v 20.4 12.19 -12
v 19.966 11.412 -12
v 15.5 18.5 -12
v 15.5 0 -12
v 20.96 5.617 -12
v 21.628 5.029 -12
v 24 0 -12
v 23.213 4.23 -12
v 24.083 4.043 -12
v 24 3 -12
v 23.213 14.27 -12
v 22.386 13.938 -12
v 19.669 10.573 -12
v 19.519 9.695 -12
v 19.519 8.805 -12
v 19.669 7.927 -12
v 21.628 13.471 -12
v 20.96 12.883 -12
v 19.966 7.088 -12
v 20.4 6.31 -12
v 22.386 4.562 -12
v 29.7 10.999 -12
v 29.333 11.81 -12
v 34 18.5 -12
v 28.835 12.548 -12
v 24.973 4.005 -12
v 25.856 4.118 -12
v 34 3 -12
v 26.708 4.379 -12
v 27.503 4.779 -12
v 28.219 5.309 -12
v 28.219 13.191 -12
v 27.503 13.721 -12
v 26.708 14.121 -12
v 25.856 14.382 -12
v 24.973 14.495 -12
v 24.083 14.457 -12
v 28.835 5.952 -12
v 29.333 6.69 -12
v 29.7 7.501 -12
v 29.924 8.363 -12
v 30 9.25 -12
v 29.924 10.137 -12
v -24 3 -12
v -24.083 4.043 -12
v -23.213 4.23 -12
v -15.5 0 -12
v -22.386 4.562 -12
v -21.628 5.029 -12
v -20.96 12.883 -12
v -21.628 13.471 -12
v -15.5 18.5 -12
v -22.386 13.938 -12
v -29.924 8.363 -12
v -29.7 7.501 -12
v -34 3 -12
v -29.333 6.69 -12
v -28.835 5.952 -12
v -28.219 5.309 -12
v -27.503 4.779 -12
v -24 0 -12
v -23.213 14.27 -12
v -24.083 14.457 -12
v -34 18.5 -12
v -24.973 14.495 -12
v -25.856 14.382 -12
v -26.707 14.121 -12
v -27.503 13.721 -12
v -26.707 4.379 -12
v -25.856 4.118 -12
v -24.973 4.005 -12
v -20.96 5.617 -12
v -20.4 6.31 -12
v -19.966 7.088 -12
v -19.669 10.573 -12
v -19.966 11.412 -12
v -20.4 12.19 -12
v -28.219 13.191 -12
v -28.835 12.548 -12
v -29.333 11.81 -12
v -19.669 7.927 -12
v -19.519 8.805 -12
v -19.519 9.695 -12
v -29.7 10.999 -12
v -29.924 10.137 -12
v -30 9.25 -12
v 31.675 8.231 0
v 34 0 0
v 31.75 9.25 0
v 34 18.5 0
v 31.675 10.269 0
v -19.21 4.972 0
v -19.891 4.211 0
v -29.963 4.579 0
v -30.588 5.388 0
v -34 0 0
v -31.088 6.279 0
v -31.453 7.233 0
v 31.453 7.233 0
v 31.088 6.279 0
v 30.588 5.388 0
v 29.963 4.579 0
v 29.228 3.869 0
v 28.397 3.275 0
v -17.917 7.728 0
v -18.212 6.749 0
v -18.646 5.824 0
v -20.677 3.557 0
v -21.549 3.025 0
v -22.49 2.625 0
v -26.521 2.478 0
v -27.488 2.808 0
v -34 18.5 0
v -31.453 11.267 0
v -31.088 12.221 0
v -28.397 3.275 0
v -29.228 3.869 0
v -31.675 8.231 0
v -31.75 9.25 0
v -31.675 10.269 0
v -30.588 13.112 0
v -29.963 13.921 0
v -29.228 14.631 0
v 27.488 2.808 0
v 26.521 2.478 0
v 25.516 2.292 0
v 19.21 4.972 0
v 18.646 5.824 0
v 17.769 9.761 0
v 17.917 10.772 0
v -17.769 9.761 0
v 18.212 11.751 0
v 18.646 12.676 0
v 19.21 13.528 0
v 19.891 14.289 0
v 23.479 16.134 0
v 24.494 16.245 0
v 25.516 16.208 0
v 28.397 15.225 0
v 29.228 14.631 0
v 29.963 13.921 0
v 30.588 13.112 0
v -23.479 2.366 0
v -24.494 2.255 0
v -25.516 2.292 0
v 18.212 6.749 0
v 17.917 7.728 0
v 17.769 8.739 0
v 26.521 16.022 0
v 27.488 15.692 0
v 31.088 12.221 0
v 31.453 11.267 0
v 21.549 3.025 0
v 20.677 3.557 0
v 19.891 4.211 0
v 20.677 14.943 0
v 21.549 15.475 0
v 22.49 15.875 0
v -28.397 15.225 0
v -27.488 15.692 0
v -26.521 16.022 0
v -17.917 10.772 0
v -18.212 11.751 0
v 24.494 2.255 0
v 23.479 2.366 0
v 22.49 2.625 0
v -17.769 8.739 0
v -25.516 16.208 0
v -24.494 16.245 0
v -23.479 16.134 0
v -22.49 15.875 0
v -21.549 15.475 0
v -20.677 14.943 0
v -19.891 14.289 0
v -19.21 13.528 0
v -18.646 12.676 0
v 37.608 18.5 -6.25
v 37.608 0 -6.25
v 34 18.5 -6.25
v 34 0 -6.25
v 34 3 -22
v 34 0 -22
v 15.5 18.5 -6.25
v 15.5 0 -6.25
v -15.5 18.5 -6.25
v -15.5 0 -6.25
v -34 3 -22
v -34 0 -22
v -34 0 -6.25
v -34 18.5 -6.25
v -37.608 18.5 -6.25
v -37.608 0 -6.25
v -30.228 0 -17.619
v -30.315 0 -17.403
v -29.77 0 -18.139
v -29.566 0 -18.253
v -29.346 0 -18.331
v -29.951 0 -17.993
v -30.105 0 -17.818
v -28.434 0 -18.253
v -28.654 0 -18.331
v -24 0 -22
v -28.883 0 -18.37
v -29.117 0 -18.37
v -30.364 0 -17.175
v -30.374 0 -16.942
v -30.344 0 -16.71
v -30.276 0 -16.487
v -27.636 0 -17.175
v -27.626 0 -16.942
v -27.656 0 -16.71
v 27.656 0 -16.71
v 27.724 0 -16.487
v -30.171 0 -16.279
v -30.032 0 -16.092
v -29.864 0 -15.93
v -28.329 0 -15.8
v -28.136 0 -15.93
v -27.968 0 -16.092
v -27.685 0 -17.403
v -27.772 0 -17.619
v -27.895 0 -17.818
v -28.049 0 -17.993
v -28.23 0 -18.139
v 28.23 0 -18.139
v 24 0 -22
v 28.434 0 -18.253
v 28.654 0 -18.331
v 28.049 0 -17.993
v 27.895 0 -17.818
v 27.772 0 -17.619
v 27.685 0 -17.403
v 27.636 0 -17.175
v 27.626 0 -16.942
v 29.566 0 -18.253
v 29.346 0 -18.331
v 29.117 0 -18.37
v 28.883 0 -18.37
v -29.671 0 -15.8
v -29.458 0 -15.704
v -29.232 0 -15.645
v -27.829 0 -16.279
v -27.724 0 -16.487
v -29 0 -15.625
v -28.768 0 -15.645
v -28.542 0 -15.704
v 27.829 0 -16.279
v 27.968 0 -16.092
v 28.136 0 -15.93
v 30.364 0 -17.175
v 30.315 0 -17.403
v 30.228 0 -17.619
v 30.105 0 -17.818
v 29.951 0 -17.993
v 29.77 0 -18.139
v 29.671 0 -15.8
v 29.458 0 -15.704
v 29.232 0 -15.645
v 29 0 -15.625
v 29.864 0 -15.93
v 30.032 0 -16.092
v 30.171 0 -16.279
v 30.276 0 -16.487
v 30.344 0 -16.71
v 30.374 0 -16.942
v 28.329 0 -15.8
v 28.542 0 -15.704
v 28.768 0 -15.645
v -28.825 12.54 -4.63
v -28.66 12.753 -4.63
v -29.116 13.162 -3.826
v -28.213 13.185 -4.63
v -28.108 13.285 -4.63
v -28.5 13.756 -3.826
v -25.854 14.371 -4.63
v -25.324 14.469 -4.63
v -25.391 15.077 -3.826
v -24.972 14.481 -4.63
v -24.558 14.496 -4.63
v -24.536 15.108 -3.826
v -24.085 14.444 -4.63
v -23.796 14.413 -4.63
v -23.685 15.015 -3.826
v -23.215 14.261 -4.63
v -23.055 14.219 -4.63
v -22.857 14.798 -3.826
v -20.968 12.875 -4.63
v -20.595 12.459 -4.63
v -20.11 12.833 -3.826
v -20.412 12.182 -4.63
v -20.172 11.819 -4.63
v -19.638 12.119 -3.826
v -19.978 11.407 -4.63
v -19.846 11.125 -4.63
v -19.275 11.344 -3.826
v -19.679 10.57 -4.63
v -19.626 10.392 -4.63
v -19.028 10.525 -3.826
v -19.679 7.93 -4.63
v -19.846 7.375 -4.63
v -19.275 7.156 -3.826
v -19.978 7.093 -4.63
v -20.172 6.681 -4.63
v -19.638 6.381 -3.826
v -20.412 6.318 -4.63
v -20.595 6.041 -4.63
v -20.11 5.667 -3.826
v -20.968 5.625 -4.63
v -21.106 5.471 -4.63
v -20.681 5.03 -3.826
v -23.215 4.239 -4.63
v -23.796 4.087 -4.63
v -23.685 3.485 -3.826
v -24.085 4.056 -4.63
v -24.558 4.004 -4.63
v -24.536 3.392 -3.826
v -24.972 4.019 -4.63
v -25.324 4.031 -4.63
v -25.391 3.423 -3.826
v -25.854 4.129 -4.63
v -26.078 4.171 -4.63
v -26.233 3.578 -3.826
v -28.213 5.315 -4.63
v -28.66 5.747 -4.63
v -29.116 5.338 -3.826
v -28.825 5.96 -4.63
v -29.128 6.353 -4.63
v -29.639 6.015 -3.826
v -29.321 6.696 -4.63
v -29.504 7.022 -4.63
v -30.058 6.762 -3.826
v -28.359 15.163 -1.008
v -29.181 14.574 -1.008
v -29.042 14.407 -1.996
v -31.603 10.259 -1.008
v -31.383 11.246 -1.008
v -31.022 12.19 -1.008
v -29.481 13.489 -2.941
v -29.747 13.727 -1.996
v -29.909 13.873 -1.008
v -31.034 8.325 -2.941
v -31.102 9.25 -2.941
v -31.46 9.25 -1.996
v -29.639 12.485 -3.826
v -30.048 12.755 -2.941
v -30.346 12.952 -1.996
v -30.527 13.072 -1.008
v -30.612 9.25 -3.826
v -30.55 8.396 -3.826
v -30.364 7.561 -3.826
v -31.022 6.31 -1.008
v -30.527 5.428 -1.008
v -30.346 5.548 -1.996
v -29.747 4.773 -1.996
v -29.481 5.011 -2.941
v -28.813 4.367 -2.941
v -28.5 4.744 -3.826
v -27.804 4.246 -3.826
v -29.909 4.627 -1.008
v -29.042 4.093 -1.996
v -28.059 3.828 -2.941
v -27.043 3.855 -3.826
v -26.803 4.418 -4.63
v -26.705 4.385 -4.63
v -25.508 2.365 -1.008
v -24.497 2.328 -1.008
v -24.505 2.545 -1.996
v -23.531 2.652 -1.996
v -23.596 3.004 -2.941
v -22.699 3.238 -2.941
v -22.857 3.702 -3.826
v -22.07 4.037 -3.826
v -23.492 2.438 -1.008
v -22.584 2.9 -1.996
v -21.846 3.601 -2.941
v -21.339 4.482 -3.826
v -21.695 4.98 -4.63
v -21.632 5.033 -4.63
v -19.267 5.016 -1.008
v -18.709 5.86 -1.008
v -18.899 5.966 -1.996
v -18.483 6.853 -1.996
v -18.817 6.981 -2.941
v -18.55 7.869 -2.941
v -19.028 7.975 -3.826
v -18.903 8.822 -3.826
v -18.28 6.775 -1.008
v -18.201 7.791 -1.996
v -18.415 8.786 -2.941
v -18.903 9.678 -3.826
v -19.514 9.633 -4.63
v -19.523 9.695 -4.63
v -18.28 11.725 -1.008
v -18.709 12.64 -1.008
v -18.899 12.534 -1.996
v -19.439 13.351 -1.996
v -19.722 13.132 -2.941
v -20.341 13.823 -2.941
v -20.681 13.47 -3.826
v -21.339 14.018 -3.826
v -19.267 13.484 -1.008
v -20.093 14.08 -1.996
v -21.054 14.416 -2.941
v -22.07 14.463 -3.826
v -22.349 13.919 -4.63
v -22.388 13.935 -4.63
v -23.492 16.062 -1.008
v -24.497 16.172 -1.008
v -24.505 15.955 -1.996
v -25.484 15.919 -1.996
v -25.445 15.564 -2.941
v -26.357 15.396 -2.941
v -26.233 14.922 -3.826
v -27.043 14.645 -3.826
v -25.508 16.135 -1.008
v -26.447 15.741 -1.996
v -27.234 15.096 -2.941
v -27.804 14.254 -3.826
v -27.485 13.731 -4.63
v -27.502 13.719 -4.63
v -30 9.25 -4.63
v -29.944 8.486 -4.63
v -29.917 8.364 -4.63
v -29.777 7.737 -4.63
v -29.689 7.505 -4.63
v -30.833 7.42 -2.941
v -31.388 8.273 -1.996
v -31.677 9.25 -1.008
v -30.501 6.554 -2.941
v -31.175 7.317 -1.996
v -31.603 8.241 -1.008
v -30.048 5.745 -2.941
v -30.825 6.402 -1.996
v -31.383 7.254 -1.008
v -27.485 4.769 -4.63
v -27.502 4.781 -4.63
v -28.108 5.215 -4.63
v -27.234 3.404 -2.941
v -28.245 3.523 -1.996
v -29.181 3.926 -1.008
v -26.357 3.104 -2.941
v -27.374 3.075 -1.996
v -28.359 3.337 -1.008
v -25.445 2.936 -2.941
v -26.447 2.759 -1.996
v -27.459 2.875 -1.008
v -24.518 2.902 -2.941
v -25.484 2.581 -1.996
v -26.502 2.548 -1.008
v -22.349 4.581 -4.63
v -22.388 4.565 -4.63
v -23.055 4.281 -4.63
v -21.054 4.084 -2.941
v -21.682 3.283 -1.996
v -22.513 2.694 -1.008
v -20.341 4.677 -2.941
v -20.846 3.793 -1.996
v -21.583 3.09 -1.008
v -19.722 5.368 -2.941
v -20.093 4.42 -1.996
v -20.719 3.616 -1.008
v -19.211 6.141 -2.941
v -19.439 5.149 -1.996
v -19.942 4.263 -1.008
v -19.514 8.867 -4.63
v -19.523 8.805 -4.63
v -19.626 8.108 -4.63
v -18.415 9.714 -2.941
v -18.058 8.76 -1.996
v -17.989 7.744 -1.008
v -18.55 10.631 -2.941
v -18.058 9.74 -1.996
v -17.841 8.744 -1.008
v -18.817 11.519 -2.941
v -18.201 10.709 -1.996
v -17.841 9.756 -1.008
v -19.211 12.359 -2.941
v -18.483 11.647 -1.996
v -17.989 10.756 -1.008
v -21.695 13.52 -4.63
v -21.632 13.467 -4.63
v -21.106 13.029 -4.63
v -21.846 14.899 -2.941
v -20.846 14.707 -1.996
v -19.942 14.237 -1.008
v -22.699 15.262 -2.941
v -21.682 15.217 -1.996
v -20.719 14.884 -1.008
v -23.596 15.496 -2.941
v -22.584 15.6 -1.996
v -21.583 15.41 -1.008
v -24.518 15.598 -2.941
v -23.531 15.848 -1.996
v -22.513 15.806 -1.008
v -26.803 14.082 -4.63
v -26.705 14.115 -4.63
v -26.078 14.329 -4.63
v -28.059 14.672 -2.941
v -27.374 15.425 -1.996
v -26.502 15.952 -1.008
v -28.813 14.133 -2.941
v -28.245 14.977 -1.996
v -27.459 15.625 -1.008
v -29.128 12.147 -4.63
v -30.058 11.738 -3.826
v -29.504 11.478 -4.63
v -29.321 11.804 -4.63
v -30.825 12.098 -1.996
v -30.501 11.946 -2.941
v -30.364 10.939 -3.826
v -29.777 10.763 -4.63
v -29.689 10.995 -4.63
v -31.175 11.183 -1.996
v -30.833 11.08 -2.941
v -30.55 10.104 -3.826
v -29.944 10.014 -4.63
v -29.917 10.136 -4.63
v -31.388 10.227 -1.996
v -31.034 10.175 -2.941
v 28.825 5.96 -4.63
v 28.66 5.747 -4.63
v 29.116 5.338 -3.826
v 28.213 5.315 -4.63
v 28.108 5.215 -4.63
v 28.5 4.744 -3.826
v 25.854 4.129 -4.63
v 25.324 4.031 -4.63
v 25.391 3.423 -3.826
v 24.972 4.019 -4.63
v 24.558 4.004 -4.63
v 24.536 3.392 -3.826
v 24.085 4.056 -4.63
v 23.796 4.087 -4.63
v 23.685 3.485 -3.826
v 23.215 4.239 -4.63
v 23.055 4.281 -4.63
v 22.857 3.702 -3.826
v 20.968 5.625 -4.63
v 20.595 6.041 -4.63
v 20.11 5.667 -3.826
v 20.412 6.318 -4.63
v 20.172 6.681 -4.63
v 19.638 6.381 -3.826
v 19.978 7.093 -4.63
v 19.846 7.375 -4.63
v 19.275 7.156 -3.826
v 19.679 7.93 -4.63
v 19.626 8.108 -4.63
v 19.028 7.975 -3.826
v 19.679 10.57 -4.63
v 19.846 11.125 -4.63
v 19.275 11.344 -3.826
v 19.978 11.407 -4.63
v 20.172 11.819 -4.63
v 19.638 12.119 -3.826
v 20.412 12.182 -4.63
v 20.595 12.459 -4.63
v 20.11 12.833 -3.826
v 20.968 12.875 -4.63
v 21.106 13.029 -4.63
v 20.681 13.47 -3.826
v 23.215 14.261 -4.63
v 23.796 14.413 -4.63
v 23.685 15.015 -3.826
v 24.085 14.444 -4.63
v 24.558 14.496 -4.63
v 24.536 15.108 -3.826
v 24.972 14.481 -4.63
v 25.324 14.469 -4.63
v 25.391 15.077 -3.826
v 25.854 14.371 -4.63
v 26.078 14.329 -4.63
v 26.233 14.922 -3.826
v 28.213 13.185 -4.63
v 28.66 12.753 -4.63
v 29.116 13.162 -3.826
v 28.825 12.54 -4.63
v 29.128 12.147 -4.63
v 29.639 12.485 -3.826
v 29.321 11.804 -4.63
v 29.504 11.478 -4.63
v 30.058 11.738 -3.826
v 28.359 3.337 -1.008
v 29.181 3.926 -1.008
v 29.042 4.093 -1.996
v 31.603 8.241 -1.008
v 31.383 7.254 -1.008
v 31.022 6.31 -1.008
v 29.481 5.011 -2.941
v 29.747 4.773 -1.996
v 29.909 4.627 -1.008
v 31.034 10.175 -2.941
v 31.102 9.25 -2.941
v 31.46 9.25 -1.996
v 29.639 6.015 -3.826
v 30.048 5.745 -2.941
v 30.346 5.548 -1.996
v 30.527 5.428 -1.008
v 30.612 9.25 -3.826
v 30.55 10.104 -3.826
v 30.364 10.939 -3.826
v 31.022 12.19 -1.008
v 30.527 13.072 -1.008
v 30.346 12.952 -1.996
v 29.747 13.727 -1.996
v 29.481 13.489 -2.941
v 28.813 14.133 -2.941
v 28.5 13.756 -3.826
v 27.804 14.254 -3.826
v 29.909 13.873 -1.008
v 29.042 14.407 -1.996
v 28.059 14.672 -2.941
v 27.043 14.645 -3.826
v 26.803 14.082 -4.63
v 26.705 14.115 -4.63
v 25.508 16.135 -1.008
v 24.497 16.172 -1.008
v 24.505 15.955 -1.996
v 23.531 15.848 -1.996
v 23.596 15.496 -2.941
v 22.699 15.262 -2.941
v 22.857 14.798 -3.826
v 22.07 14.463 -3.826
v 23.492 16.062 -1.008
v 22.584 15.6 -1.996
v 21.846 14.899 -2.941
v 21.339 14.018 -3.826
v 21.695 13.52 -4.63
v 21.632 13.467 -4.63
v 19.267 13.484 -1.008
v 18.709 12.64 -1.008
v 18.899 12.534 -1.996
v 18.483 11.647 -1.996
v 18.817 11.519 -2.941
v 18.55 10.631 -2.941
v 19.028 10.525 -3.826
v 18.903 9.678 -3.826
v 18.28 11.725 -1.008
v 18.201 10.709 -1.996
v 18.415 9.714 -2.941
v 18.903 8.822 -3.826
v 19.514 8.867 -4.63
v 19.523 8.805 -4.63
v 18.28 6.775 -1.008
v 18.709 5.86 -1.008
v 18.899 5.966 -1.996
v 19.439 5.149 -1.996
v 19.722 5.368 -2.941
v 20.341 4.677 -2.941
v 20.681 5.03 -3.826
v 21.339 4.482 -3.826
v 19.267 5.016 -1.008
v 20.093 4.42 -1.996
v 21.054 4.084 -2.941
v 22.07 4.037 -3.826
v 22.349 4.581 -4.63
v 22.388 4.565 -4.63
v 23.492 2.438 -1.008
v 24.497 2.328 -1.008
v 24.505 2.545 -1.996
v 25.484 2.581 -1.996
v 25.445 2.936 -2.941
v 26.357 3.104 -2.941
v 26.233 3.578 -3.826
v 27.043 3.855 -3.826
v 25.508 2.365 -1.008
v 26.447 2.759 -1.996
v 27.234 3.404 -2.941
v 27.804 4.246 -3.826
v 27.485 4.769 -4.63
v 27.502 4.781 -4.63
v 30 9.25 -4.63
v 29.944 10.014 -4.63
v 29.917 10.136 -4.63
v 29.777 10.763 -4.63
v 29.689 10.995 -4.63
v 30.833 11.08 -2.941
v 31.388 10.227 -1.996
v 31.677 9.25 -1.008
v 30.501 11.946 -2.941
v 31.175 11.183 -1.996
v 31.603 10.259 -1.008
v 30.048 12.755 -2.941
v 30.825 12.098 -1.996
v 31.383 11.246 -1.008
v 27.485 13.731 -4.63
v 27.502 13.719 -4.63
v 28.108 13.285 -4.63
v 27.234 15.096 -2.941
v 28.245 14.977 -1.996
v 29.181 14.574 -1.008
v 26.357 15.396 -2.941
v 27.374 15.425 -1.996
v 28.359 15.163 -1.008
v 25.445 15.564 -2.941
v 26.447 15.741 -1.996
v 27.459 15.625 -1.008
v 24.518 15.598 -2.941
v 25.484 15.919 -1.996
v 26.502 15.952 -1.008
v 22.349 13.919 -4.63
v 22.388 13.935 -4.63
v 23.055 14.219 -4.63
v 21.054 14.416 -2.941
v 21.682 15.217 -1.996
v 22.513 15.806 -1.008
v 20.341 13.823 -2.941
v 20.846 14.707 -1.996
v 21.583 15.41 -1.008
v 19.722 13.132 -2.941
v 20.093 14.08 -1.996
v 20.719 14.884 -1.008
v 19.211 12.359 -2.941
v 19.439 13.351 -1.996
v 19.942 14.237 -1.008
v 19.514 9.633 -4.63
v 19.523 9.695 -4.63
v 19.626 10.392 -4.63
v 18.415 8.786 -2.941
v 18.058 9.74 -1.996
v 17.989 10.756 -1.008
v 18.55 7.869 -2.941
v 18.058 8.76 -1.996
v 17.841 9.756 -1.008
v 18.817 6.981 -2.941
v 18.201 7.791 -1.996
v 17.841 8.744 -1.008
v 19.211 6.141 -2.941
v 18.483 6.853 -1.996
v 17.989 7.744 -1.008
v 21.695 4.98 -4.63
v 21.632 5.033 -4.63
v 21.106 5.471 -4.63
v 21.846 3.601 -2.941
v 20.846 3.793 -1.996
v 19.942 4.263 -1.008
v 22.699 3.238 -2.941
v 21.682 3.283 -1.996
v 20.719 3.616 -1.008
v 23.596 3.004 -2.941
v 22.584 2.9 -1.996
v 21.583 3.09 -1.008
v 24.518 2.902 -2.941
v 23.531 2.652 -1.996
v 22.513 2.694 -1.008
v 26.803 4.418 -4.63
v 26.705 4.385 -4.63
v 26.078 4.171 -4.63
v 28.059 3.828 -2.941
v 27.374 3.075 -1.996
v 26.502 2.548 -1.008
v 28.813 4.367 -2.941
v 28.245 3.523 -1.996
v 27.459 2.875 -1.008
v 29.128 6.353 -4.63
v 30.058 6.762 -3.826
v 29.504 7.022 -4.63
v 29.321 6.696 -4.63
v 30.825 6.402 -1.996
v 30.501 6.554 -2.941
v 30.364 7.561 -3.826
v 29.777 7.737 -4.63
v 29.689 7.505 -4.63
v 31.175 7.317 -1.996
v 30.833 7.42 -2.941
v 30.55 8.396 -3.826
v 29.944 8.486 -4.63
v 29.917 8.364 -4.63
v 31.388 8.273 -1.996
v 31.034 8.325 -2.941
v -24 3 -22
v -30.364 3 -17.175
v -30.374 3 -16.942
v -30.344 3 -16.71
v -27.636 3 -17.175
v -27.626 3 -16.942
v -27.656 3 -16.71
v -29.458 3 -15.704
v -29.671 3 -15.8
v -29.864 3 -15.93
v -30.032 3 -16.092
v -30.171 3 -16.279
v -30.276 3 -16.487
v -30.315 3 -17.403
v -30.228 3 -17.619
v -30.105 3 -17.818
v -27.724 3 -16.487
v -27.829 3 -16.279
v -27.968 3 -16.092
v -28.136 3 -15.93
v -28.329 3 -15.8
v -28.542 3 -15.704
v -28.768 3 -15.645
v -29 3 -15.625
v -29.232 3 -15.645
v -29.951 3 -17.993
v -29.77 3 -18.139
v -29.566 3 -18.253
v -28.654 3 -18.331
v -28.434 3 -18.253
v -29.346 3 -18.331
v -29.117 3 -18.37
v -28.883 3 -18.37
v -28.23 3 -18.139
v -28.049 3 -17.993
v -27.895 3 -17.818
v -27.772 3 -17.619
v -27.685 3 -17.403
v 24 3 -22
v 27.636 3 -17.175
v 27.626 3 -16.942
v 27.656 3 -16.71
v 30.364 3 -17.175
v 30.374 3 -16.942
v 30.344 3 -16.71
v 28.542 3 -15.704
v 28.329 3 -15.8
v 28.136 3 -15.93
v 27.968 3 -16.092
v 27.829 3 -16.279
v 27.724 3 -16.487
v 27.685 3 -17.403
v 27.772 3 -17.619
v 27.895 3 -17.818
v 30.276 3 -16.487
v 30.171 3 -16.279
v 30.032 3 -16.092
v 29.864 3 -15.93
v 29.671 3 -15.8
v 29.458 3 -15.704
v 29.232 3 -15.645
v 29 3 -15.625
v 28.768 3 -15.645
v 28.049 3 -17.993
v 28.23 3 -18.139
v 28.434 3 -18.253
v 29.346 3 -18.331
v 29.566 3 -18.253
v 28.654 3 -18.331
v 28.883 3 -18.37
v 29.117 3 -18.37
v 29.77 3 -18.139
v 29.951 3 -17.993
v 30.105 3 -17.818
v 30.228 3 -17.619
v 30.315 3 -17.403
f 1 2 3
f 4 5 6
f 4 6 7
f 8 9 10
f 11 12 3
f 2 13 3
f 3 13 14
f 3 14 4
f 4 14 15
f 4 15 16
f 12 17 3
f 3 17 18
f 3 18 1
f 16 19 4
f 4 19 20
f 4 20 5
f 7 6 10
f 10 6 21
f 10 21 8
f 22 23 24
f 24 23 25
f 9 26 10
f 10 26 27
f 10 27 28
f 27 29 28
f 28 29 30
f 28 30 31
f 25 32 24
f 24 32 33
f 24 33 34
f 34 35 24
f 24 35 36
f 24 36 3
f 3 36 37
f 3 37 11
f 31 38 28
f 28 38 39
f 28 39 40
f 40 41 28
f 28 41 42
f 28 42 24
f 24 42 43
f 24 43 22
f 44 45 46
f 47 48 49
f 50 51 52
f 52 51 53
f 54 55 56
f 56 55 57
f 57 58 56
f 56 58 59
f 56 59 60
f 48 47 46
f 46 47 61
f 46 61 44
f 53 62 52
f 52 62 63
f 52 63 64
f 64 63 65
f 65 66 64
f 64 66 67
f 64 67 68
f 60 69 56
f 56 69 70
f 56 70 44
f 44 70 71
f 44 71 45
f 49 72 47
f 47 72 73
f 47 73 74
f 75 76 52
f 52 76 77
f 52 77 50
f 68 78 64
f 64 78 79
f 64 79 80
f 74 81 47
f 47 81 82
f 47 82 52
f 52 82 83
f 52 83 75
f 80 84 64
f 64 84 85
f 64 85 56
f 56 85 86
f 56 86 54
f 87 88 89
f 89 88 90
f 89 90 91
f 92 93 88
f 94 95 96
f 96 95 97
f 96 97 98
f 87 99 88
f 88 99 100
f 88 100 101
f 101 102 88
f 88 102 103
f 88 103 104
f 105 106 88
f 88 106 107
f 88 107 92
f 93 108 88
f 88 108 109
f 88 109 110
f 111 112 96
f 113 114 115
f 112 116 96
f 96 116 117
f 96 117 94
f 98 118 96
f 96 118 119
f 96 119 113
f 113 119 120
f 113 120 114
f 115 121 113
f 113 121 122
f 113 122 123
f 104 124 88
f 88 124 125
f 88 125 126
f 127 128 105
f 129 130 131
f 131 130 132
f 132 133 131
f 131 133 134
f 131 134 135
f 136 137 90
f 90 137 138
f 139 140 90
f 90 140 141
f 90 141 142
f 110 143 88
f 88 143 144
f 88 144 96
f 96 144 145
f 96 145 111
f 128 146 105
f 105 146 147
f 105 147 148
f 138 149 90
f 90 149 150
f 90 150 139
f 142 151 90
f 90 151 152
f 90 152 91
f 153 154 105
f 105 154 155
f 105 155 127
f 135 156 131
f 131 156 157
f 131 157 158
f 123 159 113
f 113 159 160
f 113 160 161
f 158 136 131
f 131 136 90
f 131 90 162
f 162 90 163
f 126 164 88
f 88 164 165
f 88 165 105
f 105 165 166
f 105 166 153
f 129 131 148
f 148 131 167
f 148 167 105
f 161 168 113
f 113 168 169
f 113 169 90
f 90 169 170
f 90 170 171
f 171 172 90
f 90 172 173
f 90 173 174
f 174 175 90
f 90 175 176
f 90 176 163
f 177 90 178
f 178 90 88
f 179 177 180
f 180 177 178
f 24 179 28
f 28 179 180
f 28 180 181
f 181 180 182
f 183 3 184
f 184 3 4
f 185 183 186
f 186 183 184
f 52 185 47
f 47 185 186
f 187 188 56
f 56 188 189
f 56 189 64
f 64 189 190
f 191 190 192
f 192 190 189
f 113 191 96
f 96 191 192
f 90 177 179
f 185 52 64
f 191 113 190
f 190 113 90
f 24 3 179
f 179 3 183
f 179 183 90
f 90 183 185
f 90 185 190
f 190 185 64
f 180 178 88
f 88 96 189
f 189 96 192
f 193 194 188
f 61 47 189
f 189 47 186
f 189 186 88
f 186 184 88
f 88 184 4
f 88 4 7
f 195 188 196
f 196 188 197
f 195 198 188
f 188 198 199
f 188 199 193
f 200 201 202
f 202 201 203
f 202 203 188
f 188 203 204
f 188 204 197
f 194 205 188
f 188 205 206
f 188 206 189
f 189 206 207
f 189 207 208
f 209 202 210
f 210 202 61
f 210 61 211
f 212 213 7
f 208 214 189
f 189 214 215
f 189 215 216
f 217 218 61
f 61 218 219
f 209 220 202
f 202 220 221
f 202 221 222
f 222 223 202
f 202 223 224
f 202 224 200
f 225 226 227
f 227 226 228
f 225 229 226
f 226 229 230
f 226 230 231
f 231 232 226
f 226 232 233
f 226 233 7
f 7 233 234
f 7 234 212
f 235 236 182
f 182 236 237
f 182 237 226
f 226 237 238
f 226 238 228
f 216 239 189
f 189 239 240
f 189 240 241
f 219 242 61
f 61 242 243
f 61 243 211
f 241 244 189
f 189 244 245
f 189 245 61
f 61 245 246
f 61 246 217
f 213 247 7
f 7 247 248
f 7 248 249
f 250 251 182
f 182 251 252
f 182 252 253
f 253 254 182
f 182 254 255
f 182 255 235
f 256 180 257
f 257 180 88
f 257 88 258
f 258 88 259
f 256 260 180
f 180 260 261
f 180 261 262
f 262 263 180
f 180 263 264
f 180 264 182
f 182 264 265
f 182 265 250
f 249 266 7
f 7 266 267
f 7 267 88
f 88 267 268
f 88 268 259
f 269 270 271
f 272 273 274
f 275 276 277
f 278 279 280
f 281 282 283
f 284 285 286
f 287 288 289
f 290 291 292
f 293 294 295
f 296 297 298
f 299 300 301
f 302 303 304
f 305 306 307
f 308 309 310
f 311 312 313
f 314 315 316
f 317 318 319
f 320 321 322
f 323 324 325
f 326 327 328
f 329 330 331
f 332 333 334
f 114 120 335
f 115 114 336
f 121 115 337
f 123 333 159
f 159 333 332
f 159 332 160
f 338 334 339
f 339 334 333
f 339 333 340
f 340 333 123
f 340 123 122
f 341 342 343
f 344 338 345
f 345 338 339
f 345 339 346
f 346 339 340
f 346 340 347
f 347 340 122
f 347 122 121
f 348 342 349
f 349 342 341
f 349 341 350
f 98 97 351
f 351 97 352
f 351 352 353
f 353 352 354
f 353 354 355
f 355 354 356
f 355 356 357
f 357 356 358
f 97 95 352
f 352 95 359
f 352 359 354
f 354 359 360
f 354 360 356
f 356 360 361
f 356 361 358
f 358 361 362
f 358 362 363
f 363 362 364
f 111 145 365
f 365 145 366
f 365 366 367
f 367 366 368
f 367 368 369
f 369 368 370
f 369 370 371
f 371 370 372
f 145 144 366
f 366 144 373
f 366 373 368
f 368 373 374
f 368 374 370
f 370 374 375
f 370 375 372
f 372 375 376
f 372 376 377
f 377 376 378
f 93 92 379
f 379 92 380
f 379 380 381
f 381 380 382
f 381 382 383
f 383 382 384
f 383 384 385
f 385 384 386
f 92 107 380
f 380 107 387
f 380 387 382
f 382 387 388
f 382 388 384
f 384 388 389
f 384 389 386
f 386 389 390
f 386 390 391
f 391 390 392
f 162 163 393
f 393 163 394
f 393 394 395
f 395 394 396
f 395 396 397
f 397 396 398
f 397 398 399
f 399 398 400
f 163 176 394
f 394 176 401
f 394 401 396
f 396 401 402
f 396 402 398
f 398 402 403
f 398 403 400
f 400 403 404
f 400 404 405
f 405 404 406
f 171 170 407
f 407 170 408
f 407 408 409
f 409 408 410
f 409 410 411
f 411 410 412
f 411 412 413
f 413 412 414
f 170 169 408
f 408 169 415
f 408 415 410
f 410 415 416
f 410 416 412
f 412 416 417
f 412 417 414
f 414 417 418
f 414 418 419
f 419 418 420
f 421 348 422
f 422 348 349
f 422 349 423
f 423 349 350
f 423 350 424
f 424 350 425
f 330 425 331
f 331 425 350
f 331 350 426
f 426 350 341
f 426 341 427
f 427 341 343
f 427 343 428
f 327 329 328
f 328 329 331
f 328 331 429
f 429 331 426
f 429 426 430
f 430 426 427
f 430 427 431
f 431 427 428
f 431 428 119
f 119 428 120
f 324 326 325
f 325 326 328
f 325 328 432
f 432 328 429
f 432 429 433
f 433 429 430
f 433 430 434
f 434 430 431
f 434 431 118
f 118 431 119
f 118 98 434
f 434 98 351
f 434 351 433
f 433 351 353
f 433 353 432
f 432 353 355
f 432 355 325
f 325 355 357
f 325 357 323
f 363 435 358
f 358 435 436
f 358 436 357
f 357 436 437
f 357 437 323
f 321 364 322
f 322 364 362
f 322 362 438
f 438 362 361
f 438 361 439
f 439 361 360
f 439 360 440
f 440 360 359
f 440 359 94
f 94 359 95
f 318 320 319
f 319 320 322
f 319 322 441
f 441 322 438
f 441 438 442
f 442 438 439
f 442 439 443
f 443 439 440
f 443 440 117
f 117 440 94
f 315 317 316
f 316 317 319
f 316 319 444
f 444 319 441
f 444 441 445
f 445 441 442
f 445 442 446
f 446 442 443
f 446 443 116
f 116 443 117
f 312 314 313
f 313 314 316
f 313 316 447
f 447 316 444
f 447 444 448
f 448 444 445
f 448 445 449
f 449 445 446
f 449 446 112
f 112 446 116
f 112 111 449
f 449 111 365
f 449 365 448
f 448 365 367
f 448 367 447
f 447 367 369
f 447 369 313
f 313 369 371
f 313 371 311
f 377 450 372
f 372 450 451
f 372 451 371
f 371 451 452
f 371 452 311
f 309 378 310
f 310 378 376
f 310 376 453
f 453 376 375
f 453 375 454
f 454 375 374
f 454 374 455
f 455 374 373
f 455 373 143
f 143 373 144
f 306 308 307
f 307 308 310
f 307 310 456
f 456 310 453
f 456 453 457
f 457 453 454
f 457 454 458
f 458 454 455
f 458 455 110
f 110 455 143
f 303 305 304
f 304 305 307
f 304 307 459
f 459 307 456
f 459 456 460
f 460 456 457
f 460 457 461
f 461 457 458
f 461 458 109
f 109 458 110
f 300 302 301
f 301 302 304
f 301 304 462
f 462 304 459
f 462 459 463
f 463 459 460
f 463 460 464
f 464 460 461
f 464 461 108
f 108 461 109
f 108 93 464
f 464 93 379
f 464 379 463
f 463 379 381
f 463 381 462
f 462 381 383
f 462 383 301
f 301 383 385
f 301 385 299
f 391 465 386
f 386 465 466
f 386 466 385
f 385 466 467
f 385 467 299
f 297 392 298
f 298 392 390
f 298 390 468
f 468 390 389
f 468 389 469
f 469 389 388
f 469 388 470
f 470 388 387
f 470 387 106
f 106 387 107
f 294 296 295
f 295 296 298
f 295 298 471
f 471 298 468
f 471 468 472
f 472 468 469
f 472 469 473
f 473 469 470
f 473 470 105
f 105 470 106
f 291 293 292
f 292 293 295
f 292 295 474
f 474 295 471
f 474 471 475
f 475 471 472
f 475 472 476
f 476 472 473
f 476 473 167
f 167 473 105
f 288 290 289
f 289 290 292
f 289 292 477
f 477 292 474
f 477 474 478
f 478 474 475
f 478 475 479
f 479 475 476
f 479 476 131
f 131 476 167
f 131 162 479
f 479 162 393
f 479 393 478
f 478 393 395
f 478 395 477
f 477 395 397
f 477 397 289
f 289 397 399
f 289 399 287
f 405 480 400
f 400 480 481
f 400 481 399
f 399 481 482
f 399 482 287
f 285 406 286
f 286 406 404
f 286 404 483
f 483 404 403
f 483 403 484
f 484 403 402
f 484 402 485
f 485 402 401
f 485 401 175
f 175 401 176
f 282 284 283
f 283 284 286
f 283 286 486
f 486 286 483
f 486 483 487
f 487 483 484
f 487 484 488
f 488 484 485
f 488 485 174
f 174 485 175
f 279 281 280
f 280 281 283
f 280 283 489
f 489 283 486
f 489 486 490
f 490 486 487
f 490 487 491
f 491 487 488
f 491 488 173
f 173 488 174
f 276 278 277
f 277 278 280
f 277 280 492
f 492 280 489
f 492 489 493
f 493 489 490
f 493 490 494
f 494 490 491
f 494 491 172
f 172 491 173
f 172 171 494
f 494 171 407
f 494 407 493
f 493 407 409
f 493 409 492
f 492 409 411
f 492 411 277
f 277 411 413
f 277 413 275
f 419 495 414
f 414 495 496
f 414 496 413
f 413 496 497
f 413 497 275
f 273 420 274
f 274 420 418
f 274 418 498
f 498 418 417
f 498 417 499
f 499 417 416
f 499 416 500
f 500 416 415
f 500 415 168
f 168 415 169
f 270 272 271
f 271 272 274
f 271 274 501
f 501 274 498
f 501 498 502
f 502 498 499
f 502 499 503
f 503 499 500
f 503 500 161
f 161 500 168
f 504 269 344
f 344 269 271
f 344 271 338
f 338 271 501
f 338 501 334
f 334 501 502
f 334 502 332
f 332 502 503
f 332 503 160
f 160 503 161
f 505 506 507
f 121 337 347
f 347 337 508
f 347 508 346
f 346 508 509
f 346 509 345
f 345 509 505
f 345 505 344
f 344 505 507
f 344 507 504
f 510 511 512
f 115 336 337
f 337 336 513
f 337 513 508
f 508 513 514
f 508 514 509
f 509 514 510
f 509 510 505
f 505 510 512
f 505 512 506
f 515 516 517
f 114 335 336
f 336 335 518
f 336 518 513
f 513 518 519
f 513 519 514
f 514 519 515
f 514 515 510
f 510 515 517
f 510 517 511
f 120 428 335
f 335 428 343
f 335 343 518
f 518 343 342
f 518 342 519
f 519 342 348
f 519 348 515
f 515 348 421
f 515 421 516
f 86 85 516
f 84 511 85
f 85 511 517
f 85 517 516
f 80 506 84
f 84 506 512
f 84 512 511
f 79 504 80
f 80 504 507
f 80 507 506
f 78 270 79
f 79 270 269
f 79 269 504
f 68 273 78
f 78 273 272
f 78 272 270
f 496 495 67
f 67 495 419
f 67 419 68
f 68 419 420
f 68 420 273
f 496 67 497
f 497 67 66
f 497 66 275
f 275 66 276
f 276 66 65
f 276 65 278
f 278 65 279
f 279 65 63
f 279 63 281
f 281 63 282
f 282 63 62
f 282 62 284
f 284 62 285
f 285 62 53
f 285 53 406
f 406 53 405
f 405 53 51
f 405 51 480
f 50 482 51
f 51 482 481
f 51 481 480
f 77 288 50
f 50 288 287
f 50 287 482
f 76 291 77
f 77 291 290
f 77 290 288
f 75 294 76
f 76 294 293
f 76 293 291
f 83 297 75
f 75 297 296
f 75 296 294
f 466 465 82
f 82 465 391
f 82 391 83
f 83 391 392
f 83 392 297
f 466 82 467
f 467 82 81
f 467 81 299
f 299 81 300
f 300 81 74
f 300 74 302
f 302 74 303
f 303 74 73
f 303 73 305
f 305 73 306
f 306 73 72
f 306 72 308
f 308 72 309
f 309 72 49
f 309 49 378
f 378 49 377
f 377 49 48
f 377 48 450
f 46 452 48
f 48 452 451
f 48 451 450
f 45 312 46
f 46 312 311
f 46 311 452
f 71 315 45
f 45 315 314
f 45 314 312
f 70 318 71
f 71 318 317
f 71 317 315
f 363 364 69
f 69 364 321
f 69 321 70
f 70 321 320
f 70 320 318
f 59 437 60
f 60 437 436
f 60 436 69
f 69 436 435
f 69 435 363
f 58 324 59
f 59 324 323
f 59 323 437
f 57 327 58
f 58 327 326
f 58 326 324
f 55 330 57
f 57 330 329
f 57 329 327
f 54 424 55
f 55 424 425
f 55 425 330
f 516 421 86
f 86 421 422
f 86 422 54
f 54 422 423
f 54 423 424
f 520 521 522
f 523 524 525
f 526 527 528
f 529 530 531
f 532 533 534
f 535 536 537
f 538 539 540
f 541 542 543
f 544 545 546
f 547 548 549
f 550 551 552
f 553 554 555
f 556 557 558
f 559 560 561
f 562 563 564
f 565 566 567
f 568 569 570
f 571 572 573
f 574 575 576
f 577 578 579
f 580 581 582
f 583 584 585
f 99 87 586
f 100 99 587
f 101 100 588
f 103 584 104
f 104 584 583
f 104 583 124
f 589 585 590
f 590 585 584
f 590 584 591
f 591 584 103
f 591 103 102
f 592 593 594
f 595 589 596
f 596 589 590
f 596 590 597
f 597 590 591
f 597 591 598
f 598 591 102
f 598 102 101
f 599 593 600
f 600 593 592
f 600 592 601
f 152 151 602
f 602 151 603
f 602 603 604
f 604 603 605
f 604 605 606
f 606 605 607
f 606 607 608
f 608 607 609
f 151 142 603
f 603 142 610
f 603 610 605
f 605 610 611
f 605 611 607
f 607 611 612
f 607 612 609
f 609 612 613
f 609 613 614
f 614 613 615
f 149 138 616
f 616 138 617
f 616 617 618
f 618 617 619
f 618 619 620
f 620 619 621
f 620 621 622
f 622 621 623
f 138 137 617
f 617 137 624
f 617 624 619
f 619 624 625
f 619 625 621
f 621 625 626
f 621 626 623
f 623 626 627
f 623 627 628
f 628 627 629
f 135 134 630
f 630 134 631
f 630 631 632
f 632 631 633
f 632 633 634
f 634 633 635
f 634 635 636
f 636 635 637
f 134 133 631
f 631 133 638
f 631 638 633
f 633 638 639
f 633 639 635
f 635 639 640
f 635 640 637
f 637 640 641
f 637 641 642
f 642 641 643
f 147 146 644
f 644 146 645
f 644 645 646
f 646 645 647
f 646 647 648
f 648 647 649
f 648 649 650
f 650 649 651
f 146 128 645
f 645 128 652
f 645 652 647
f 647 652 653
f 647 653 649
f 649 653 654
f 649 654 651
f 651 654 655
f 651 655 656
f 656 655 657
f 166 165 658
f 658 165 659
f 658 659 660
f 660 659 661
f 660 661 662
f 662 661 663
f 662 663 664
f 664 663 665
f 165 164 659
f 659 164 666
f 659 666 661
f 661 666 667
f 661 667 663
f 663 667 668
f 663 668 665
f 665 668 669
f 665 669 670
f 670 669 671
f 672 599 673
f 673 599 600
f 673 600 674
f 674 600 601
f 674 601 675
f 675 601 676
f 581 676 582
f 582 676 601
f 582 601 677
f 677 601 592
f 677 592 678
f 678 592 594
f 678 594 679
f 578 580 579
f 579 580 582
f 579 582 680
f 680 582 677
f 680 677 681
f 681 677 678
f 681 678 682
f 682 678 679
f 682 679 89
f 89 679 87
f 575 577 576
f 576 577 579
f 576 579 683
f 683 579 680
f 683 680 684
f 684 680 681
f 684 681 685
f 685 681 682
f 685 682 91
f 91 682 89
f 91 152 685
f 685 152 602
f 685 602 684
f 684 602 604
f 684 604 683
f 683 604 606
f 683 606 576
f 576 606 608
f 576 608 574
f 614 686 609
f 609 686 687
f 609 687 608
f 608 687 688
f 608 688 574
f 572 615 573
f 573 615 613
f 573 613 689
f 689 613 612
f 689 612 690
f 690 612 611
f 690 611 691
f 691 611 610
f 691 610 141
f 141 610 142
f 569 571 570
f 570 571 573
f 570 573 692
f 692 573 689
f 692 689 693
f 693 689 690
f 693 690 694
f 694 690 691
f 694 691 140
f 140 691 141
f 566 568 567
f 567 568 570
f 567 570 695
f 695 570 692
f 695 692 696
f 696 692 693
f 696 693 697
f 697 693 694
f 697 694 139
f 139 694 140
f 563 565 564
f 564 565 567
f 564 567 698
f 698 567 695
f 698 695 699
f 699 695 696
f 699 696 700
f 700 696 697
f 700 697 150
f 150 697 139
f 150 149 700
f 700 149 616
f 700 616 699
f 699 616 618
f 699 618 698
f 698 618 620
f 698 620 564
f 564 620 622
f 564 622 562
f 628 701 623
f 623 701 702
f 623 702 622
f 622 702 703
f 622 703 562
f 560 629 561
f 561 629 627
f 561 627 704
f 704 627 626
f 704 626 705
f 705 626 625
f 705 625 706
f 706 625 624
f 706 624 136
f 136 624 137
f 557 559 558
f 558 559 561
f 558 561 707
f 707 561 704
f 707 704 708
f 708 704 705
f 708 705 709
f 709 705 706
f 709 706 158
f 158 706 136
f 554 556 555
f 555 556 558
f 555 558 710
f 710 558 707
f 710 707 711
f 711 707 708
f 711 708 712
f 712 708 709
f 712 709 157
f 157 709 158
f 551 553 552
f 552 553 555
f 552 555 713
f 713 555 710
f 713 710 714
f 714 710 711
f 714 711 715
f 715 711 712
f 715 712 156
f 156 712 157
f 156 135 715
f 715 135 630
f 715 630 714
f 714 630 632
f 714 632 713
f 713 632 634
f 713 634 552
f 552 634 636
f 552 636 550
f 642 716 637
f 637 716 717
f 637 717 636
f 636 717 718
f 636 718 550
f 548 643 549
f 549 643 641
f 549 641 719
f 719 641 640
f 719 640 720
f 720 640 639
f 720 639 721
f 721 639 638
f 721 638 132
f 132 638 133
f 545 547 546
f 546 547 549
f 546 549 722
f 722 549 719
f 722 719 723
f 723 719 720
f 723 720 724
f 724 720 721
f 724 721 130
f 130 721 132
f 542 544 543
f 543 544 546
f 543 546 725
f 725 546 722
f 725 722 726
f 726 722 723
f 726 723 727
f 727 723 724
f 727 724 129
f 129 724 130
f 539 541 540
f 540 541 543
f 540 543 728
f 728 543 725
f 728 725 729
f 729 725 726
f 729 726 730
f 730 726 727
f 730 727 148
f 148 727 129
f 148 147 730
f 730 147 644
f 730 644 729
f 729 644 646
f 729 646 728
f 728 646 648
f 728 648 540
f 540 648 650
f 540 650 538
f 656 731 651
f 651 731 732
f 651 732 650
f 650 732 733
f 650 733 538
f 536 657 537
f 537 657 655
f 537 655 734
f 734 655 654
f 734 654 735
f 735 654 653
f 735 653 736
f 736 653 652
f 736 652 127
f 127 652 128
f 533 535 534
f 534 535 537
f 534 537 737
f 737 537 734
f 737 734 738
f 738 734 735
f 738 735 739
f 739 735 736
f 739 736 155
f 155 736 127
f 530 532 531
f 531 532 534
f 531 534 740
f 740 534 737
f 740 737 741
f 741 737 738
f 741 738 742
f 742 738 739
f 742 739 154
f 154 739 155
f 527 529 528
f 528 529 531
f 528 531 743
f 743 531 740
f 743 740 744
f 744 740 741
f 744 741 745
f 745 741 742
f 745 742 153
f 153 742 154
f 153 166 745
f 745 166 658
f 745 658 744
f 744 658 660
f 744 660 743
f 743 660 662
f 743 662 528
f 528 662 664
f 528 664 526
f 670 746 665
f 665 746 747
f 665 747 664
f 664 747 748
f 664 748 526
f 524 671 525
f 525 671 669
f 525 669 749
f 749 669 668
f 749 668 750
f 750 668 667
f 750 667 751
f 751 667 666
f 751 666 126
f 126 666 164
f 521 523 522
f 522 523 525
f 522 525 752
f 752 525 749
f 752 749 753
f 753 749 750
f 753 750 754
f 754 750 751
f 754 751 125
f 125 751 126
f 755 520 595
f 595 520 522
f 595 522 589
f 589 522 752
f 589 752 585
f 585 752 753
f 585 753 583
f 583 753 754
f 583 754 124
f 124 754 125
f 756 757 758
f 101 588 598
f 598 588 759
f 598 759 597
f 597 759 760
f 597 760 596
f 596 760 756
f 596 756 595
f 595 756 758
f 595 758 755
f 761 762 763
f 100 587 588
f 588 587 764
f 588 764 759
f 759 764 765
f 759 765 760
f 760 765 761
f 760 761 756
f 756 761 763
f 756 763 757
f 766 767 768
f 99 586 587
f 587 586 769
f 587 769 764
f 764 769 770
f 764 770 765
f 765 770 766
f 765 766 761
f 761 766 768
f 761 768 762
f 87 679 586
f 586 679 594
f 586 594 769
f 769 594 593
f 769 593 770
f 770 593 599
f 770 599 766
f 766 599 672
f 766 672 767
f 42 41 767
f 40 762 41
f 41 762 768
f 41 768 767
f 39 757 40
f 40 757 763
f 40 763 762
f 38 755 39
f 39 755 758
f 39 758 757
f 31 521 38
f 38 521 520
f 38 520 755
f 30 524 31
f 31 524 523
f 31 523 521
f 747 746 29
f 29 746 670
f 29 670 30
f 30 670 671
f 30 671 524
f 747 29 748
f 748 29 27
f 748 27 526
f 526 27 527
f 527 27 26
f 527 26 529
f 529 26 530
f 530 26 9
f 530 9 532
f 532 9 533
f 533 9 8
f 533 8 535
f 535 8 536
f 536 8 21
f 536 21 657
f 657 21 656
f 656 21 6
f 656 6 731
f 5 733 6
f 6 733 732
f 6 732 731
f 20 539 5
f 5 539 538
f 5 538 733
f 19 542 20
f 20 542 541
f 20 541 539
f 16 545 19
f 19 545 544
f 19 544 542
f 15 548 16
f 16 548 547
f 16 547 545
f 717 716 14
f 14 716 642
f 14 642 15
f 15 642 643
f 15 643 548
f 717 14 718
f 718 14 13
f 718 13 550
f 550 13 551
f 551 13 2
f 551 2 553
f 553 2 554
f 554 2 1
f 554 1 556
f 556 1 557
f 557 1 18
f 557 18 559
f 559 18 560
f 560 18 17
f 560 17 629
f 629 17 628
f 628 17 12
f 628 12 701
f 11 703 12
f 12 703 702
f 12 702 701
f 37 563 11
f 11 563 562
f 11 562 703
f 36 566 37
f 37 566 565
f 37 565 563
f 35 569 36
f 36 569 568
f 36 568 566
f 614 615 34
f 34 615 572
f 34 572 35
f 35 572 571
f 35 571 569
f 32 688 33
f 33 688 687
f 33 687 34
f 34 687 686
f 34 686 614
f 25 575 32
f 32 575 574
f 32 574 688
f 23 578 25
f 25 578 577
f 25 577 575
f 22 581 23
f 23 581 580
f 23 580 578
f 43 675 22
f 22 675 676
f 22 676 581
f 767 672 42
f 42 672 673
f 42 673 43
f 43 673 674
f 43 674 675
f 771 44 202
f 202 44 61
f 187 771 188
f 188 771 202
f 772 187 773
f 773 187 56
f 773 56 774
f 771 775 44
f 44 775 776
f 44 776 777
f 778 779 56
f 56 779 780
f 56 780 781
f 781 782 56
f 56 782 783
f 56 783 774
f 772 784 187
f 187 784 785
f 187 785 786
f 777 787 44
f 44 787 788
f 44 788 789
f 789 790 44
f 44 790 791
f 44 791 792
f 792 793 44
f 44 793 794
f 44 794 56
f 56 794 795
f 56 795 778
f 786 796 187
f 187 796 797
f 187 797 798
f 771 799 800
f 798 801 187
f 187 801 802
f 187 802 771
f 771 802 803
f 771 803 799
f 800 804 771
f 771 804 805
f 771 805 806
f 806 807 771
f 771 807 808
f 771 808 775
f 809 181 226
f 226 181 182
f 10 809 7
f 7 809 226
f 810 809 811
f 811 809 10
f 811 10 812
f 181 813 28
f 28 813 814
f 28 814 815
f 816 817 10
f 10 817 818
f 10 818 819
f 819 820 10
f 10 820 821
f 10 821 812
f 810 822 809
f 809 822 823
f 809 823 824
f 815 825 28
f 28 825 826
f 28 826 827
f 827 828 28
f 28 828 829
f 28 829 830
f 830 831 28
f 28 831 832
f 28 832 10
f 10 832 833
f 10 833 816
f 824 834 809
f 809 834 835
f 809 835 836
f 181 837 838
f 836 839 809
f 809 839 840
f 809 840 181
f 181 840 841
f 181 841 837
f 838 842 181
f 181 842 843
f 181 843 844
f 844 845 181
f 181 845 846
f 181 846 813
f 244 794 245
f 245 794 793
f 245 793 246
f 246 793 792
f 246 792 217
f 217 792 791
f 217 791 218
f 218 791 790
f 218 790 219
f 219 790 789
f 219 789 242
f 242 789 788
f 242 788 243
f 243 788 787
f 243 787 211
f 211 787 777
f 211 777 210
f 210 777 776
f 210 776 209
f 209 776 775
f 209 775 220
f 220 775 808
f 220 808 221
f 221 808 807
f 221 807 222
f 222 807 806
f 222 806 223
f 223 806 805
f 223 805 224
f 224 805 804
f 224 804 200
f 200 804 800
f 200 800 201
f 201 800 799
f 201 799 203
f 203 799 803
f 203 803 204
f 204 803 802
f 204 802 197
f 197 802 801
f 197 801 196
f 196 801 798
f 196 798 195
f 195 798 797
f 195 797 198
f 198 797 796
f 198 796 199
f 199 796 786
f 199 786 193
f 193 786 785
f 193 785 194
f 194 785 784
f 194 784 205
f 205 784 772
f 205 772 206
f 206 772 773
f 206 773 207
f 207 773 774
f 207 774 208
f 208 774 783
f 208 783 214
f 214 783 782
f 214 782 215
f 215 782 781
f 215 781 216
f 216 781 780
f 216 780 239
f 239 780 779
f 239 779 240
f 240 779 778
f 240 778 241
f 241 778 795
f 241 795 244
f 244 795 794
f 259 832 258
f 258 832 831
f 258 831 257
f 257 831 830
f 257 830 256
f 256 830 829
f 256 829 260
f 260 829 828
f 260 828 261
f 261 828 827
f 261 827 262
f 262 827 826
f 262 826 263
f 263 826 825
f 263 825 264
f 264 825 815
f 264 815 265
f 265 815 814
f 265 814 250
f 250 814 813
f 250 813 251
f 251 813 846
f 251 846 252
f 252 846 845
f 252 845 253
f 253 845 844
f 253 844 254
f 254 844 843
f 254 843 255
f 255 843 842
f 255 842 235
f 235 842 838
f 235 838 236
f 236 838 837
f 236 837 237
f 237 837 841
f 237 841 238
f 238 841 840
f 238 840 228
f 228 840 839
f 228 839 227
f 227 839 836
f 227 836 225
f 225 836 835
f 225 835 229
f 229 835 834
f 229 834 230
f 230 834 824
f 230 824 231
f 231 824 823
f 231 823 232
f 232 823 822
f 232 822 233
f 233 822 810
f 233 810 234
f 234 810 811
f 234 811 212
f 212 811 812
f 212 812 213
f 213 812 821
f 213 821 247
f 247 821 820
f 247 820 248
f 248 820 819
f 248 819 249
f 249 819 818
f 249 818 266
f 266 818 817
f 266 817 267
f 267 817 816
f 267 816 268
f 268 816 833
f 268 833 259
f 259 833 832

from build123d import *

# Parameters (mm, degrees)
BOSS_EXTRUDE1_DEPTH = 18.5
SKETCH3_W           = 10
SKETCH3_H           = 10
BOSS_EXTRUDE2_DEPTH = 3
SKETCH5_R           = 1.375
CUT_EXTRUDE1_DEPTH  = 3


with BuildPart() as part:
    # Sketch1 → Boss-Extrude1 (new body)
    with BuildSketch(Plane(origin=(0, 0, 0), x_dir=(1, 0, 0), z_dir=(0, 1, 0))):
        Polygon((-34, 0), (-37.608439182, 6.25), (-34, 6.25), (-34, 12), (-15.5, 12), (-15.5, 6.25), (15.5, 6.25), (15.5, 12), (34, 12), (34, 6.25), (37.608439182, 6.25), (34, 0), align=None)
    extrude(amount=BOSS_EXTRUDE1_DEPTH)

    # Sketch2 → Cut-Revolve1 (revolve, cut)
    with BuildSketch(Plane(origin=(0, 9.25, 0), x_dir=(1, 0, 0), z_dir=(0, 1, 0))):
        with BuildLine():
            Line((-24.75, 12), (-24.75, 0))
            Line((-24.75, 0), (-31.75, 0))
            ThreePointArc((-31.75, 0), (-31.297900427, 2.474873734), (-30, 4.630064794))
            Line((-30, 4.630064794), (-30, 12))
            Line((-30, 12), (-24.75, 12))
        make_face()
    cut_revolve1 = revolve(axis=Axis((-24.75, 9.25, -35.715820775), (0, 0, 1)), mode=Mode.SUBTRACT)

    # Mirror1: Cut-Revolve1 across plane
    add(cut_revolve1.mirror(Plane(origin=(0, 0, 0), x_dir=(0, 0, 1), z_dir=(1, 0, 0))), mode=Mode.SUBTRACT)

    # Sketch3 → Boss-Extrude2 (add)
    with BuildSketch(Plane(origin=(0, 0, 0), x_dir=(1, 0, 0), z_dir=(0, 1, 0))):
        with Locations((-29, 17)):
            Rectangle(SKETCH3_W, SKETCH3_H)
        with Locations((29, 17)):
            Rectangle(SKETCH3_W, SKETCH3_H)
    extrude(amount=BOSS_EXTRUDE2_DEPTH)

    # Sketch5 → Cut-Extrude1 (cut)
    with BuildSketch(Plane(origin=(0, 3, 0), x_dir=(1, 0, 0), z_dir=(0, 1, 0))):
        with Locations((-29, 17)):
            Circle(SKETCH5_R)
    cut_extrude1 = extrude(amount=-CUT_EXTRUDE1_DEPTH, mode=Mode.SUBTRACT)

    # Mirror2: Cut-Extrude1 across plane
    add(cut_extrude1.mirror(Plane(origin=(0, 0, 0), x_dir=(0, 0, 1), z_dir=(1, 0, 0))), mode=Mode.SUBTRACT)


solid = part.part
